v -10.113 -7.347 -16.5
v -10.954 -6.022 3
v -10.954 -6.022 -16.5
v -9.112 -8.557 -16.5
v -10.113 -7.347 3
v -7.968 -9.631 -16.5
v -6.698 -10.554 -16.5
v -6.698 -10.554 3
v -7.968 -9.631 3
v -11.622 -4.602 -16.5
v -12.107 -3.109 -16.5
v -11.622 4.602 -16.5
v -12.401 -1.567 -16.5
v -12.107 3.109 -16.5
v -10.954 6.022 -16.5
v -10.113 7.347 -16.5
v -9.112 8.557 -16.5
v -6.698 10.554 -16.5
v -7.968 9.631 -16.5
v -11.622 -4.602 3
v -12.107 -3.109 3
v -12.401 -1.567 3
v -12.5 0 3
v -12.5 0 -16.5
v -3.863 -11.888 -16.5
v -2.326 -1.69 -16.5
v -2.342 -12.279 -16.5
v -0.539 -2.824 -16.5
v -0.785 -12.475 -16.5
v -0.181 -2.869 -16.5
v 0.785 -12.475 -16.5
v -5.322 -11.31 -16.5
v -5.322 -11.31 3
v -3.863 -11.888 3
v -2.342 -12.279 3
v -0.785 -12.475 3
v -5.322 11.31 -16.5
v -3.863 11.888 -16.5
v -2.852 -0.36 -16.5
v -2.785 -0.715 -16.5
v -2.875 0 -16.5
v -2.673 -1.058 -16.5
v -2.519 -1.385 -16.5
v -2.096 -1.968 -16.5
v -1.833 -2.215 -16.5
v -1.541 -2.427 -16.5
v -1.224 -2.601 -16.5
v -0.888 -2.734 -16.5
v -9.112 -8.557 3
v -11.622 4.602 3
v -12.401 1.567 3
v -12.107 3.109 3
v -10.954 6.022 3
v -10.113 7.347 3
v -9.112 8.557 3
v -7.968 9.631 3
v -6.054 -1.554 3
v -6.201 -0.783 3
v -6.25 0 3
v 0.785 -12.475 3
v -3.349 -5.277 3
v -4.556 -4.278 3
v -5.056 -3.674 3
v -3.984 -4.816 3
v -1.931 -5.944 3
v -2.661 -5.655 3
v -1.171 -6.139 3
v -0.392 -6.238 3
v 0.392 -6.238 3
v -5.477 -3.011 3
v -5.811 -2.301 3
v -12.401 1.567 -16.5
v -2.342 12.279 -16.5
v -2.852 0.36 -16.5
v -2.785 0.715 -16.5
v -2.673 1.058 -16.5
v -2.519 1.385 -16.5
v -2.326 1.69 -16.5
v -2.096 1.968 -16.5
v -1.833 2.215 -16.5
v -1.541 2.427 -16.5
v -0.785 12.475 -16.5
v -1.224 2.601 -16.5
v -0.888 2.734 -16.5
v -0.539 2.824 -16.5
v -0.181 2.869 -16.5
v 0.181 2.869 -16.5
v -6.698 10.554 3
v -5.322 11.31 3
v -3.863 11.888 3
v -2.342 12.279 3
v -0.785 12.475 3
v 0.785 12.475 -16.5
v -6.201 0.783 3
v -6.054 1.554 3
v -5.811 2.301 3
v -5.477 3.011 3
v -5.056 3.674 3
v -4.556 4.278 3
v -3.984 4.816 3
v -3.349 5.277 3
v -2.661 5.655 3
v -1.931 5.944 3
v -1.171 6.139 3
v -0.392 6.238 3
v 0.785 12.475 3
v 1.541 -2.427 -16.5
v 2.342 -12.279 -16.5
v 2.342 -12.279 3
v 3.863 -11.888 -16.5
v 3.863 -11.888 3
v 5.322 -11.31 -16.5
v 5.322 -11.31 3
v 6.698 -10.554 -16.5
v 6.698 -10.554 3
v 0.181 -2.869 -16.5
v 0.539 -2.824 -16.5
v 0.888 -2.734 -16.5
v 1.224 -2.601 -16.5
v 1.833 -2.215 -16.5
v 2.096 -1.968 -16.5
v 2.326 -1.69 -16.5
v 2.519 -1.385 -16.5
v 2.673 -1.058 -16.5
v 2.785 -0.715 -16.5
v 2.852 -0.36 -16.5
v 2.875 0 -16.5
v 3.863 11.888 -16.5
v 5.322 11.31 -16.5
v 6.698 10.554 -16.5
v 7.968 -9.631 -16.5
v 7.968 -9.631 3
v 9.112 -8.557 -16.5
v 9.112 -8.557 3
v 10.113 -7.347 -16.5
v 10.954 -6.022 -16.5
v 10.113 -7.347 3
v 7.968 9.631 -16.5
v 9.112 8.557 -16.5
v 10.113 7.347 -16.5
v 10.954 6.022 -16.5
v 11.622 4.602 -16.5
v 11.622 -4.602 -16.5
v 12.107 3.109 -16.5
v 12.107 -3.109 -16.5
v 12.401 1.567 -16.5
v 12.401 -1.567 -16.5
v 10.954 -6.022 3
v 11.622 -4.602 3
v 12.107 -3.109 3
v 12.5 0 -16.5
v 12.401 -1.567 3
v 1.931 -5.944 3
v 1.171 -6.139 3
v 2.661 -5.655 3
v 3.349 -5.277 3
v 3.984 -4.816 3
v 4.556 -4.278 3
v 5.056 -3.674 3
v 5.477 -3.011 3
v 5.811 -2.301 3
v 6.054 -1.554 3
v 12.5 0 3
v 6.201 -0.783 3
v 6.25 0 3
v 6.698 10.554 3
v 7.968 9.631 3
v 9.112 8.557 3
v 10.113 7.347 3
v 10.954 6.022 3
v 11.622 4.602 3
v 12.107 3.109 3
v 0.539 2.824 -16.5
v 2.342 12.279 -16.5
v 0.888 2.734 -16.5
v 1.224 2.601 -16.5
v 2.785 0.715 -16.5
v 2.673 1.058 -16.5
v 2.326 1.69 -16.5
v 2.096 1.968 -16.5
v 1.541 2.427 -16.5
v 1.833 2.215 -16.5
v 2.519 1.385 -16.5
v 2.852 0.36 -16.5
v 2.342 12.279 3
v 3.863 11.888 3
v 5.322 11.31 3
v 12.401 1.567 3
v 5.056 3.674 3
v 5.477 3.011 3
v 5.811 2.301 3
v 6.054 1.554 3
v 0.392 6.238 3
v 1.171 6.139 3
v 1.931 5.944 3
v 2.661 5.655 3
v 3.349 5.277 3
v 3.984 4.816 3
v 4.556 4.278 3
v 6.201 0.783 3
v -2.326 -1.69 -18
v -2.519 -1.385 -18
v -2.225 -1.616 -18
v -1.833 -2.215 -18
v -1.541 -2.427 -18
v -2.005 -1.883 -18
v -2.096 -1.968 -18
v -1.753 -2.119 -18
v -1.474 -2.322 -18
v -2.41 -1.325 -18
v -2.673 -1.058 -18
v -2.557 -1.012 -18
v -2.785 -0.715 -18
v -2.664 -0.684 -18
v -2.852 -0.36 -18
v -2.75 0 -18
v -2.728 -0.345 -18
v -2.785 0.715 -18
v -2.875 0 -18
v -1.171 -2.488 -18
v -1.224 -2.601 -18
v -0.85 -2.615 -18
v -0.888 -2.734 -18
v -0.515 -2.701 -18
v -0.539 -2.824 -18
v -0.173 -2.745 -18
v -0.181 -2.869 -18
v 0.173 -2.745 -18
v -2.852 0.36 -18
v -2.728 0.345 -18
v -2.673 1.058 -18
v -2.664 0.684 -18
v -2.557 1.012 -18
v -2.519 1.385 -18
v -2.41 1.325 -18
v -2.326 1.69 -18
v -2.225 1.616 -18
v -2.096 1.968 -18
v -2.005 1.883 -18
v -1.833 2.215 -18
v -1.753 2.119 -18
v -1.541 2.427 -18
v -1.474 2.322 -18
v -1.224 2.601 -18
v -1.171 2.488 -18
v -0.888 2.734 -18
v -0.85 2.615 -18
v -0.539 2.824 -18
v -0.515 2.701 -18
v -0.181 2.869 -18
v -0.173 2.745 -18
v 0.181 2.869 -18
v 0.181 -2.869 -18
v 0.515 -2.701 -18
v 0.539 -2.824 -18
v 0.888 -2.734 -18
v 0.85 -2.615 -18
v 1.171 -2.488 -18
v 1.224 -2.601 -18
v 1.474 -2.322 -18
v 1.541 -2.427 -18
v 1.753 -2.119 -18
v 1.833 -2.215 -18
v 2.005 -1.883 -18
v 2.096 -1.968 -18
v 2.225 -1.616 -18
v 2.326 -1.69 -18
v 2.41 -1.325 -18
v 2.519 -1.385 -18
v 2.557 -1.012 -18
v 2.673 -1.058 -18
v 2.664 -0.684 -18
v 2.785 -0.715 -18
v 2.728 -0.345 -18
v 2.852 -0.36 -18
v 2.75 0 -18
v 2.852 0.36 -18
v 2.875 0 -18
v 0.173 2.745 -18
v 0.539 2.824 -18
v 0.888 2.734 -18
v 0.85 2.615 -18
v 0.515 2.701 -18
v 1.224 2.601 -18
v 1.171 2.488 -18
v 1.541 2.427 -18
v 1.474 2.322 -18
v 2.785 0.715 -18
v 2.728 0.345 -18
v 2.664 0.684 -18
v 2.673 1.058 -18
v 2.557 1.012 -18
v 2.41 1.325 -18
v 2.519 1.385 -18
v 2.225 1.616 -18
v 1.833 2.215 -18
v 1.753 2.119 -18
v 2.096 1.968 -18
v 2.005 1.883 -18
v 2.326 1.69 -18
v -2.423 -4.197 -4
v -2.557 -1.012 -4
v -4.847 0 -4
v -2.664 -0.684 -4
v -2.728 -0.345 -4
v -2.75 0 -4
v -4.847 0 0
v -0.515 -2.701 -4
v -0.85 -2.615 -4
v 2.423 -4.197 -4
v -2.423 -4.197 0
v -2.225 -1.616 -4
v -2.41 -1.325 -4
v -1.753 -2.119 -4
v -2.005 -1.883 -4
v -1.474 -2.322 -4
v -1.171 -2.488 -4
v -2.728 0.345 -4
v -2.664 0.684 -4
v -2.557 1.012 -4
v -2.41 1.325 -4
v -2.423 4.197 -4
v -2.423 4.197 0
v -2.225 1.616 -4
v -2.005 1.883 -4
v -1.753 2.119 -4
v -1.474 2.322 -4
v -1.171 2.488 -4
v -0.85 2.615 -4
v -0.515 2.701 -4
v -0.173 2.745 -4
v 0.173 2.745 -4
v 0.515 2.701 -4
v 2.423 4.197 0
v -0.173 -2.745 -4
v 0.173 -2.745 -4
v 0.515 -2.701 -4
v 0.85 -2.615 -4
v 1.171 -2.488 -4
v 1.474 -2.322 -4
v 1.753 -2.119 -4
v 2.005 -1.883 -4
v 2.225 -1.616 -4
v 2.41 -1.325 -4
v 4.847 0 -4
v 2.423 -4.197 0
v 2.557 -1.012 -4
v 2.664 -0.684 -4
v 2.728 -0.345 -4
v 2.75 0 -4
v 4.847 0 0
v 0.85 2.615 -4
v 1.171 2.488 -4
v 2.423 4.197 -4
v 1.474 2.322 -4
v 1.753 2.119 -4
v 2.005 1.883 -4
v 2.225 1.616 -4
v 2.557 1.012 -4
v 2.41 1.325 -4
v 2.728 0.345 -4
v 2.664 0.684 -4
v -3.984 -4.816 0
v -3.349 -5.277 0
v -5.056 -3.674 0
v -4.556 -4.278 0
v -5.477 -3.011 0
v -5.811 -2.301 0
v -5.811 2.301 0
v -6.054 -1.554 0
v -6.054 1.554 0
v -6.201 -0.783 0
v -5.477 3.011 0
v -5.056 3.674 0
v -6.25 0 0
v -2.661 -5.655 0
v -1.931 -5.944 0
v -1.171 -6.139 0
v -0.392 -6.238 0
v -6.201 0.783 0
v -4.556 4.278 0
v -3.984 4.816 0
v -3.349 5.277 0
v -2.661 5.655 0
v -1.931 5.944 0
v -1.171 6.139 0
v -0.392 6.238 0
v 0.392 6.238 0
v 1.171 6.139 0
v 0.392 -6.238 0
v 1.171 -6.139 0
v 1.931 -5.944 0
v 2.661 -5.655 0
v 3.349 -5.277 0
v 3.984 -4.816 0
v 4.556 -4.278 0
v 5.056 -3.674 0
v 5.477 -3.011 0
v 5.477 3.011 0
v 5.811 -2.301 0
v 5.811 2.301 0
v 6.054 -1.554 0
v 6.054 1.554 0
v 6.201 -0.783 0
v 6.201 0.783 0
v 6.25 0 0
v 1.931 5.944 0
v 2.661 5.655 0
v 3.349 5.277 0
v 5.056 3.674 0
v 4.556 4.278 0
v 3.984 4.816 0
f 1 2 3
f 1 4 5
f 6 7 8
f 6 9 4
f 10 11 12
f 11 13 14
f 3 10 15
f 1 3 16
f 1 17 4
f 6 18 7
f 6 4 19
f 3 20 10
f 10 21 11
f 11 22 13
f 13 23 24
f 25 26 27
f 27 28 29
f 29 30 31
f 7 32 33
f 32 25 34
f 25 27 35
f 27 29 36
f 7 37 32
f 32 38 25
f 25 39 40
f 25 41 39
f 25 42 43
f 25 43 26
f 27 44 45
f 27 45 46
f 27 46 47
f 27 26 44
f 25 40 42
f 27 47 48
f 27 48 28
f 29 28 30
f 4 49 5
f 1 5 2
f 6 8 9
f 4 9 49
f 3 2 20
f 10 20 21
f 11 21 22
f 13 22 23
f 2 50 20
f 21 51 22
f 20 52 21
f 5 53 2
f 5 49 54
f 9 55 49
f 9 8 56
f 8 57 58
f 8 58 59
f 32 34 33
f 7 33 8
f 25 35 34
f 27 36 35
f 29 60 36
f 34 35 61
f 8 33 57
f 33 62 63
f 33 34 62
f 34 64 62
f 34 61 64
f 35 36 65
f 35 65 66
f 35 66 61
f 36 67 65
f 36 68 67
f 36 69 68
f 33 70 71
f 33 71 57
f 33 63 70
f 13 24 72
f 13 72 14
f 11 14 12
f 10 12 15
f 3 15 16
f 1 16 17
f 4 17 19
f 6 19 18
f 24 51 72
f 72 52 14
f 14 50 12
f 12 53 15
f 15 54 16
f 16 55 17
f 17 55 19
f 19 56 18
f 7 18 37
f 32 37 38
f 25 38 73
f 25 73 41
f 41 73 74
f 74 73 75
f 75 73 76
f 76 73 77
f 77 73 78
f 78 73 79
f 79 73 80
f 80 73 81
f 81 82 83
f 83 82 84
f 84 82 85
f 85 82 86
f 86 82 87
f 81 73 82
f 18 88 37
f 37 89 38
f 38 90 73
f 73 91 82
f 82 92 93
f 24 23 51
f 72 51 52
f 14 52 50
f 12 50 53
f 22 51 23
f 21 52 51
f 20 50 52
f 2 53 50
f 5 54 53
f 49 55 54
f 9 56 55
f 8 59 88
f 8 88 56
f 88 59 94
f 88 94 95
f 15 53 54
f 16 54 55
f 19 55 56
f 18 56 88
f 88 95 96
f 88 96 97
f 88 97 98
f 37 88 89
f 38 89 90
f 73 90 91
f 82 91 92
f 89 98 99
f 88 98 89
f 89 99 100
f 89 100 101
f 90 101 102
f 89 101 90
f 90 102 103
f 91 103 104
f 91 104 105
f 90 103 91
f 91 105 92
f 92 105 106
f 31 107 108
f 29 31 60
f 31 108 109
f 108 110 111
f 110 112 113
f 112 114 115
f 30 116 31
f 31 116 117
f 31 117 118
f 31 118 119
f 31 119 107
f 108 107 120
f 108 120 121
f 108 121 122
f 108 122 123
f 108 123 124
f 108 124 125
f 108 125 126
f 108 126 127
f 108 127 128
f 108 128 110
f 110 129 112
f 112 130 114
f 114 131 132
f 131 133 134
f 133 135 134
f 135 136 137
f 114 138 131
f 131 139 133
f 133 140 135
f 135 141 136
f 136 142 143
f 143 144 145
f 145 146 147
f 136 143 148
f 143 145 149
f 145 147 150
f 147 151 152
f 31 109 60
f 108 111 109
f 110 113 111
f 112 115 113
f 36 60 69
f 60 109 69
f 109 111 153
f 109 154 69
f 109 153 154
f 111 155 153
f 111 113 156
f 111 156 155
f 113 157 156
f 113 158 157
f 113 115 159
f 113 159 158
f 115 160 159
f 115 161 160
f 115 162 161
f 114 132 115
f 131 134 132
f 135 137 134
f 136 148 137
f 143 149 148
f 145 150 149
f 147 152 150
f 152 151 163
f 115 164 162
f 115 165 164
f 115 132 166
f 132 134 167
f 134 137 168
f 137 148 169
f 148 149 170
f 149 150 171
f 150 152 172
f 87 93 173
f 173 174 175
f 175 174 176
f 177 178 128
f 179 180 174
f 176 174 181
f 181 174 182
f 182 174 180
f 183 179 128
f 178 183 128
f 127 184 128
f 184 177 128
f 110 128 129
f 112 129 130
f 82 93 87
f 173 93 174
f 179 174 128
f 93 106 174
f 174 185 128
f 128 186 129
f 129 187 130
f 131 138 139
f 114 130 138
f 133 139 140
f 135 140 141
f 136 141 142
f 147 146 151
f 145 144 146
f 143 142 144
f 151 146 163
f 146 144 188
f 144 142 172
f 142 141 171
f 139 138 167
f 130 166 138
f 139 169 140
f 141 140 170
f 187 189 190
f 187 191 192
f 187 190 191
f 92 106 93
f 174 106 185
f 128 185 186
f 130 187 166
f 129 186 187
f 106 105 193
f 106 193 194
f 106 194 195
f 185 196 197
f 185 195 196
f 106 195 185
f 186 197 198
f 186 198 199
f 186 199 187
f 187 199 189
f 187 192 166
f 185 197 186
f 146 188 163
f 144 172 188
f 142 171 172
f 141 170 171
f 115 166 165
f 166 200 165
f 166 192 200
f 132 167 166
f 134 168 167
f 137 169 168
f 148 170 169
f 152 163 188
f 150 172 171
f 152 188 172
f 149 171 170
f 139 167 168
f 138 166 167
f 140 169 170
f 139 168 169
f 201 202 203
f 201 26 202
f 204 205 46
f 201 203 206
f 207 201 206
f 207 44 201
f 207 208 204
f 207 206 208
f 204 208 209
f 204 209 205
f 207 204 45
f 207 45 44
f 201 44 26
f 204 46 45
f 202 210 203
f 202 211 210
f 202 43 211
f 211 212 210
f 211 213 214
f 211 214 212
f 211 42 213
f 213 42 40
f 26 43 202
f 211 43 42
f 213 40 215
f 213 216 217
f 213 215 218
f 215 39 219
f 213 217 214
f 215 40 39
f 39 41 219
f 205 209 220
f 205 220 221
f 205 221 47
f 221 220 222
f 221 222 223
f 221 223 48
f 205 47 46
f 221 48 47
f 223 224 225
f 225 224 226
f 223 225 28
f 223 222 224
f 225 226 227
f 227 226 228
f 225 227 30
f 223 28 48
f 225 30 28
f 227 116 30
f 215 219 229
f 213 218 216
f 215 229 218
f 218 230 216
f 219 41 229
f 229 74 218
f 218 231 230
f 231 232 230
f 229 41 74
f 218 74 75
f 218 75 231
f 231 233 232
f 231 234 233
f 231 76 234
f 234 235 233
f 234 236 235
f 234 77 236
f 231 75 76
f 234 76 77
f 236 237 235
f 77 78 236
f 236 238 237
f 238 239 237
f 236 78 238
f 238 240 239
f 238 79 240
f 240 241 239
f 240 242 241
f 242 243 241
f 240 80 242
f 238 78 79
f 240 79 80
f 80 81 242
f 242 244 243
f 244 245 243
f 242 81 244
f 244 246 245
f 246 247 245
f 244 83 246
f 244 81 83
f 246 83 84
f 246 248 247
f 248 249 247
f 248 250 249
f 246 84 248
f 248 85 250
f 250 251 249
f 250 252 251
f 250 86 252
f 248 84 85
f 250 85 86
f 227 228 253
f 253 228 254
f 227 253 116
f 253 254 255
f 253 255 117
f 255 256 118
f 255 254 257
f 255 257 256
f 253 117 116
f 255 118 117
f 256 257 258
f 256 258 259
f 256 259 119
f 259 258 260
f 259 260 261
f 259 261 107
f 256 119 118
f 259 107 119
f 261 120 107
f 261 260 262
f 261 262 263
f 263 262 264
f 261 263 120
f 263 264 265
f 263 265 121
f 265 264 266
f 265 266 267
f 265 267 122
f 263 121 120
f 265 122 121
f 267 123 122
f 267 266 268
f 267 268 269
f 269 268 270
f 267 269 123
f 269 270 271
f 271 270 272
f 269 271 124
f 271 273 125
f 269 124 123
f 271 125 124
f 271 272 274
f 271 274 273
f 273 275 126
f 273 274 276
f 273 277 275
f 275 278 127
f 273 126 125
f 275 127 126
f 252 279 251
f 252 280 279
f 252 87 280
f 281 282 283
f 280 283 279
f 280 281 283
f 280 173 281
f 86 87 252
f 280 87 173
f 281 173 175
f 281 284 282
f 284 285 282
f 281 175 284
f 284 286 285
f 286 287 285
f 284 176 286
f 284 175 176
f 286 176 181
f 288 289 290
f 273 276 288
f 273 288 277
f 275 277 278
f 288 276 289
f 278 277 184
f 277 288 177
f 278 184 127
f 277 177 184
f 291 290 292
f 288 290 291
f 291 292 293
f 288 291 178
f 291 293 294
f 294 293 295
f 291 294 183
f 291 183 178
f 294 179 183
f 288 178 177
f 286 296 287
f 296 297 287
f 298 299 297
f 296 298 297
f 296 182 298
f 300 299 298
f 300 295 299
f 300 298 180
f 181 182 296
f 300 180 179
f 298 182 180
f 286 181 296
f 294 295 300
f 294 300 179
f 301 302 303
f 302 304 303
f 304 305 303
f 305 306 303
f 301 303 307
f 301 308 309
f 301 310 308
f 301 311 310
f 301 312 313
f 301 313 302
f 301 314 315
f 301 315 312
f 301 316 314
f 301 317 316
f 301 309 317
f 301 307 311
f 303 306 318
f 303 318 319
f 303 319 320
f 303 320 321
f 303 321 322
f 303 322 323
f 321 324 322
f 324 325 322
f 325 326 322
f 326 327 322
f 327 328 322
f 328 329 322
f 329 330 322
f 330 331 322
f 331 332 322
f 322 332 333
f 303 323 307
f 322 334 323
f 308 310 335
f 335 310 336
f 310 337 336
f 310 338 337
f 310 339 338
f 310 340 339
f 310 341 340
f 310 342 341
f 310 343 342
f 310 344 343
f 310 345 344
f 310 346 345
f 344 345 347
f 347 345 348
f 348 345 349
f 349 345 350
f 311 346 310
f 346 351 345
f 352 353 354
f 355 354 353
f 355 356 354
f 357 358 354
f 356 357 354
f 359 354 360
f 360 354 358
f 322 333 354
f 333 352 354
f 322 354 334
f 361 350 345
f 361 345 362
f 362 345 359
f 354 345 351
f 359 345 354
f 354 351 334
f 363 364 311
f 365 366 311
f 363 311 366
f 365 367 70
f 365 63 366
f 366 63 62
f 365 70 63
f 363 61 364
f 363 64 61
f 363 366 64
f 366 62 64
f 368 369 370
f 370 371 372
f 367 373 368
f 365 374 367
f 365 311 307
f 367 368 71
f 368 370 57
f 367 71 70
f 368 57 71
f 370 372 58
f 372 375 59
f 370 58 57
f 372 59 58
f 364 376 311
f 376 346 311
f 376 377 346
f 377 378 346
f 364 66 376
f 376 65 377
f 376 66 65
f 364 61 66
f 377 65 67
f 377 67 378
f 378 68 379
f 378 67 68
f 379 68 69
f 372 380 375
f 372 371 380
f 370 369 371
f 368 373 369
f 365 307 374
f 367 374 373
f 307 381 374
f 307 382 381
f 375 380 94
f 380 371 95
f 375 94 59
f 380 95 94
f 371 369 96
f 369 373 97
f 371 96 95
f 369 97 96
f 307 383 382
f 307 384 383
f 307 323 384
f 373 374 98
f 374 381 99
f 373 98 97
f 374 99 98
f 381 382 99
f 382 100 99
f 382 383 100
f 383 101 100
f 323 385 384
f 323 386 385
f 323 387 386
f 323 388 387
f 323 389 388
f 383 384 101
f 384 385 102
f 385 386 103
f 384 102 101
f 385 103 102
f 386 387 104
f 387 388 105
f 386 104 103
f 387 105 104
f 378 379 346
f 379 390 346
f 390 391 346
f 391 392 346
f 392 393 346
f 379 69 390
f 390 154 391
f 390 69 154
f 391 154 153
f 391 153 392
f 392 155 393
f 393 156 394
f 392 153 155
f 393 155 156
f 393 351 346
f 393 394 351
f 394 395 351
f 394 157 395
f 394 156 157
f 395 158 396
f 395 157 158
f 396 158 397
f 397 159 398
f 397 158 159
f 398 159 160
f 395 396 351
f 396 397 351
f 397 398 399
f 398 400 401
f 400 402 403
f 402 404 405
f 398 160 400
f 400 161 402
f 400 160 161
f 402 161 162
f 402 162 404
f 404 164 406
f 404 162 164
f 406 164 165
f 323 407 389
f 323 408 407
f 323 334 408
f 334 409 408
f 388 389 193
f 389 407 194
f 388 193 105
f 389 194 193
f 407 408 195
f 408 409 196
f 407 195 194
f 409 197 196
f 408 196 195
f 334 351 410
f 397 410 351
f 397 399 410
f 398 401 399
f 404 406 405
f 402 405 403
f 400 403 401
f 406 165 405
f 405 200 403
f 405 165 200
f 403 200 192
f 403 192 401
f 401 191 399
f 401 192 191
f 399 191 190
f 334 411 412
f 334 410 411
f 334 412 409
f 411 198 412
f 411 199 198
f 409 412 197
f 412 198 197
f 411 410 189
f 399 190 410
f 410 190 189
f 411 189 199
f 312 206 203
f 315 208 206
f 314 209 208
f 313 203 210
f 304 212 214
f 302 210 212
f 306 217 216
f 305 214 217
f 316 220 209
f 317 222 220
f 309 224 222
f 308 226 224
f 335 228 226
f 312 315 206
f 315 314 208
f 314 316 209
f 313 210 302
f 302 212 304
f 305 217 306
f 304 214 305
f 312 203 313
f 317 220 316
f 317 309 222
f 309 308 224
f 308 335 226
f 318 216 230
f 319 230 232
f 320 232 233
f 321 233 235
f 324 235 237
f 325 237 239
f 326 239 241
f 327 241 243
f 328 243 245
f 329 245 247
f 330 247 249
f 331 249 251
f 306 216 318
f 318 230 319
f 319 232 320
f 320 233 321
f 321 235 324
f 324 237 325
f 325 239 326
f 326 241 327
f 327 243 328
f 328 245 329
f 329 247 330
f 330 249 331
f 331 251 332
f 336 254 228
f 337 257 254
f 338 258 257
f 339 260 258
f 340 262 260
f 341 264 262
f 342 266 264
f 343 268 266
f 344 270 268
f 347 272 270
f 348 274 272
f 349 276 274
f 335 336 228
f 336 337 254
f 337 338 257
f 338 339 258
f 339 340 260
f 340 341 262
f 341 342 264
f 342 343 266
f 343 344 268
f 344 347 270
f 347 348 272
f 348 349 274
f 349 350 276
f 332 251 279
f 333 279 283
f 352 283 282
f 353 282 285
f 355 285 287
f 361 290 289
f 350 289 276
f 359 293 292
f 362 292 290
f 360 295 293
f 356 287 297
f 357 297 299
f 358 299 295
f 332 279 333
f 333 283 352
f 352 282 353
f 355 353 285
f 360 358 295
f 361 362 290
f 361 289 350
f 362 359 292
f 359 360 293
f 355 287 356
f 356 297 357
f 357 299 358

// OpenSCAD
$fn = 50;

difference() {
	union() {
		translate(v = [0, 0, -16.5]) {
			cylinder(h = 19.5, r = 12.5);
		}
		#translate(v = [0, 0, -18.0]) {
			cylinder(h = 18, r = 2.875);
		}
	}
	union() {
		translate(v = [0, 0, 0]) {
			rotate(a = [0, 0, 0]) {
				difference() {
					union() {
						translate(v = [0, 0, -4]) {
							linear_extrude(height = 4) {
								polygon(points = [[4.8468, 0.0], [2.4234000000000004, 4.197451927062417], [-2.423399999999999, 4.197451927062417], [-4.8468, 5.935618106107392e-16], [-2.423400000000002, -4.197451927062416], [2.423399999999997, -4.197451927062419]]);
							}
						}
					}
					union();
				}
			}
		}
		#cylinder(h = 3, r = 6.25);
		#translate(v = [0, 0, -100.0]) {
			cylinder(h = 200, r = 2.75);
		}
	}
}
